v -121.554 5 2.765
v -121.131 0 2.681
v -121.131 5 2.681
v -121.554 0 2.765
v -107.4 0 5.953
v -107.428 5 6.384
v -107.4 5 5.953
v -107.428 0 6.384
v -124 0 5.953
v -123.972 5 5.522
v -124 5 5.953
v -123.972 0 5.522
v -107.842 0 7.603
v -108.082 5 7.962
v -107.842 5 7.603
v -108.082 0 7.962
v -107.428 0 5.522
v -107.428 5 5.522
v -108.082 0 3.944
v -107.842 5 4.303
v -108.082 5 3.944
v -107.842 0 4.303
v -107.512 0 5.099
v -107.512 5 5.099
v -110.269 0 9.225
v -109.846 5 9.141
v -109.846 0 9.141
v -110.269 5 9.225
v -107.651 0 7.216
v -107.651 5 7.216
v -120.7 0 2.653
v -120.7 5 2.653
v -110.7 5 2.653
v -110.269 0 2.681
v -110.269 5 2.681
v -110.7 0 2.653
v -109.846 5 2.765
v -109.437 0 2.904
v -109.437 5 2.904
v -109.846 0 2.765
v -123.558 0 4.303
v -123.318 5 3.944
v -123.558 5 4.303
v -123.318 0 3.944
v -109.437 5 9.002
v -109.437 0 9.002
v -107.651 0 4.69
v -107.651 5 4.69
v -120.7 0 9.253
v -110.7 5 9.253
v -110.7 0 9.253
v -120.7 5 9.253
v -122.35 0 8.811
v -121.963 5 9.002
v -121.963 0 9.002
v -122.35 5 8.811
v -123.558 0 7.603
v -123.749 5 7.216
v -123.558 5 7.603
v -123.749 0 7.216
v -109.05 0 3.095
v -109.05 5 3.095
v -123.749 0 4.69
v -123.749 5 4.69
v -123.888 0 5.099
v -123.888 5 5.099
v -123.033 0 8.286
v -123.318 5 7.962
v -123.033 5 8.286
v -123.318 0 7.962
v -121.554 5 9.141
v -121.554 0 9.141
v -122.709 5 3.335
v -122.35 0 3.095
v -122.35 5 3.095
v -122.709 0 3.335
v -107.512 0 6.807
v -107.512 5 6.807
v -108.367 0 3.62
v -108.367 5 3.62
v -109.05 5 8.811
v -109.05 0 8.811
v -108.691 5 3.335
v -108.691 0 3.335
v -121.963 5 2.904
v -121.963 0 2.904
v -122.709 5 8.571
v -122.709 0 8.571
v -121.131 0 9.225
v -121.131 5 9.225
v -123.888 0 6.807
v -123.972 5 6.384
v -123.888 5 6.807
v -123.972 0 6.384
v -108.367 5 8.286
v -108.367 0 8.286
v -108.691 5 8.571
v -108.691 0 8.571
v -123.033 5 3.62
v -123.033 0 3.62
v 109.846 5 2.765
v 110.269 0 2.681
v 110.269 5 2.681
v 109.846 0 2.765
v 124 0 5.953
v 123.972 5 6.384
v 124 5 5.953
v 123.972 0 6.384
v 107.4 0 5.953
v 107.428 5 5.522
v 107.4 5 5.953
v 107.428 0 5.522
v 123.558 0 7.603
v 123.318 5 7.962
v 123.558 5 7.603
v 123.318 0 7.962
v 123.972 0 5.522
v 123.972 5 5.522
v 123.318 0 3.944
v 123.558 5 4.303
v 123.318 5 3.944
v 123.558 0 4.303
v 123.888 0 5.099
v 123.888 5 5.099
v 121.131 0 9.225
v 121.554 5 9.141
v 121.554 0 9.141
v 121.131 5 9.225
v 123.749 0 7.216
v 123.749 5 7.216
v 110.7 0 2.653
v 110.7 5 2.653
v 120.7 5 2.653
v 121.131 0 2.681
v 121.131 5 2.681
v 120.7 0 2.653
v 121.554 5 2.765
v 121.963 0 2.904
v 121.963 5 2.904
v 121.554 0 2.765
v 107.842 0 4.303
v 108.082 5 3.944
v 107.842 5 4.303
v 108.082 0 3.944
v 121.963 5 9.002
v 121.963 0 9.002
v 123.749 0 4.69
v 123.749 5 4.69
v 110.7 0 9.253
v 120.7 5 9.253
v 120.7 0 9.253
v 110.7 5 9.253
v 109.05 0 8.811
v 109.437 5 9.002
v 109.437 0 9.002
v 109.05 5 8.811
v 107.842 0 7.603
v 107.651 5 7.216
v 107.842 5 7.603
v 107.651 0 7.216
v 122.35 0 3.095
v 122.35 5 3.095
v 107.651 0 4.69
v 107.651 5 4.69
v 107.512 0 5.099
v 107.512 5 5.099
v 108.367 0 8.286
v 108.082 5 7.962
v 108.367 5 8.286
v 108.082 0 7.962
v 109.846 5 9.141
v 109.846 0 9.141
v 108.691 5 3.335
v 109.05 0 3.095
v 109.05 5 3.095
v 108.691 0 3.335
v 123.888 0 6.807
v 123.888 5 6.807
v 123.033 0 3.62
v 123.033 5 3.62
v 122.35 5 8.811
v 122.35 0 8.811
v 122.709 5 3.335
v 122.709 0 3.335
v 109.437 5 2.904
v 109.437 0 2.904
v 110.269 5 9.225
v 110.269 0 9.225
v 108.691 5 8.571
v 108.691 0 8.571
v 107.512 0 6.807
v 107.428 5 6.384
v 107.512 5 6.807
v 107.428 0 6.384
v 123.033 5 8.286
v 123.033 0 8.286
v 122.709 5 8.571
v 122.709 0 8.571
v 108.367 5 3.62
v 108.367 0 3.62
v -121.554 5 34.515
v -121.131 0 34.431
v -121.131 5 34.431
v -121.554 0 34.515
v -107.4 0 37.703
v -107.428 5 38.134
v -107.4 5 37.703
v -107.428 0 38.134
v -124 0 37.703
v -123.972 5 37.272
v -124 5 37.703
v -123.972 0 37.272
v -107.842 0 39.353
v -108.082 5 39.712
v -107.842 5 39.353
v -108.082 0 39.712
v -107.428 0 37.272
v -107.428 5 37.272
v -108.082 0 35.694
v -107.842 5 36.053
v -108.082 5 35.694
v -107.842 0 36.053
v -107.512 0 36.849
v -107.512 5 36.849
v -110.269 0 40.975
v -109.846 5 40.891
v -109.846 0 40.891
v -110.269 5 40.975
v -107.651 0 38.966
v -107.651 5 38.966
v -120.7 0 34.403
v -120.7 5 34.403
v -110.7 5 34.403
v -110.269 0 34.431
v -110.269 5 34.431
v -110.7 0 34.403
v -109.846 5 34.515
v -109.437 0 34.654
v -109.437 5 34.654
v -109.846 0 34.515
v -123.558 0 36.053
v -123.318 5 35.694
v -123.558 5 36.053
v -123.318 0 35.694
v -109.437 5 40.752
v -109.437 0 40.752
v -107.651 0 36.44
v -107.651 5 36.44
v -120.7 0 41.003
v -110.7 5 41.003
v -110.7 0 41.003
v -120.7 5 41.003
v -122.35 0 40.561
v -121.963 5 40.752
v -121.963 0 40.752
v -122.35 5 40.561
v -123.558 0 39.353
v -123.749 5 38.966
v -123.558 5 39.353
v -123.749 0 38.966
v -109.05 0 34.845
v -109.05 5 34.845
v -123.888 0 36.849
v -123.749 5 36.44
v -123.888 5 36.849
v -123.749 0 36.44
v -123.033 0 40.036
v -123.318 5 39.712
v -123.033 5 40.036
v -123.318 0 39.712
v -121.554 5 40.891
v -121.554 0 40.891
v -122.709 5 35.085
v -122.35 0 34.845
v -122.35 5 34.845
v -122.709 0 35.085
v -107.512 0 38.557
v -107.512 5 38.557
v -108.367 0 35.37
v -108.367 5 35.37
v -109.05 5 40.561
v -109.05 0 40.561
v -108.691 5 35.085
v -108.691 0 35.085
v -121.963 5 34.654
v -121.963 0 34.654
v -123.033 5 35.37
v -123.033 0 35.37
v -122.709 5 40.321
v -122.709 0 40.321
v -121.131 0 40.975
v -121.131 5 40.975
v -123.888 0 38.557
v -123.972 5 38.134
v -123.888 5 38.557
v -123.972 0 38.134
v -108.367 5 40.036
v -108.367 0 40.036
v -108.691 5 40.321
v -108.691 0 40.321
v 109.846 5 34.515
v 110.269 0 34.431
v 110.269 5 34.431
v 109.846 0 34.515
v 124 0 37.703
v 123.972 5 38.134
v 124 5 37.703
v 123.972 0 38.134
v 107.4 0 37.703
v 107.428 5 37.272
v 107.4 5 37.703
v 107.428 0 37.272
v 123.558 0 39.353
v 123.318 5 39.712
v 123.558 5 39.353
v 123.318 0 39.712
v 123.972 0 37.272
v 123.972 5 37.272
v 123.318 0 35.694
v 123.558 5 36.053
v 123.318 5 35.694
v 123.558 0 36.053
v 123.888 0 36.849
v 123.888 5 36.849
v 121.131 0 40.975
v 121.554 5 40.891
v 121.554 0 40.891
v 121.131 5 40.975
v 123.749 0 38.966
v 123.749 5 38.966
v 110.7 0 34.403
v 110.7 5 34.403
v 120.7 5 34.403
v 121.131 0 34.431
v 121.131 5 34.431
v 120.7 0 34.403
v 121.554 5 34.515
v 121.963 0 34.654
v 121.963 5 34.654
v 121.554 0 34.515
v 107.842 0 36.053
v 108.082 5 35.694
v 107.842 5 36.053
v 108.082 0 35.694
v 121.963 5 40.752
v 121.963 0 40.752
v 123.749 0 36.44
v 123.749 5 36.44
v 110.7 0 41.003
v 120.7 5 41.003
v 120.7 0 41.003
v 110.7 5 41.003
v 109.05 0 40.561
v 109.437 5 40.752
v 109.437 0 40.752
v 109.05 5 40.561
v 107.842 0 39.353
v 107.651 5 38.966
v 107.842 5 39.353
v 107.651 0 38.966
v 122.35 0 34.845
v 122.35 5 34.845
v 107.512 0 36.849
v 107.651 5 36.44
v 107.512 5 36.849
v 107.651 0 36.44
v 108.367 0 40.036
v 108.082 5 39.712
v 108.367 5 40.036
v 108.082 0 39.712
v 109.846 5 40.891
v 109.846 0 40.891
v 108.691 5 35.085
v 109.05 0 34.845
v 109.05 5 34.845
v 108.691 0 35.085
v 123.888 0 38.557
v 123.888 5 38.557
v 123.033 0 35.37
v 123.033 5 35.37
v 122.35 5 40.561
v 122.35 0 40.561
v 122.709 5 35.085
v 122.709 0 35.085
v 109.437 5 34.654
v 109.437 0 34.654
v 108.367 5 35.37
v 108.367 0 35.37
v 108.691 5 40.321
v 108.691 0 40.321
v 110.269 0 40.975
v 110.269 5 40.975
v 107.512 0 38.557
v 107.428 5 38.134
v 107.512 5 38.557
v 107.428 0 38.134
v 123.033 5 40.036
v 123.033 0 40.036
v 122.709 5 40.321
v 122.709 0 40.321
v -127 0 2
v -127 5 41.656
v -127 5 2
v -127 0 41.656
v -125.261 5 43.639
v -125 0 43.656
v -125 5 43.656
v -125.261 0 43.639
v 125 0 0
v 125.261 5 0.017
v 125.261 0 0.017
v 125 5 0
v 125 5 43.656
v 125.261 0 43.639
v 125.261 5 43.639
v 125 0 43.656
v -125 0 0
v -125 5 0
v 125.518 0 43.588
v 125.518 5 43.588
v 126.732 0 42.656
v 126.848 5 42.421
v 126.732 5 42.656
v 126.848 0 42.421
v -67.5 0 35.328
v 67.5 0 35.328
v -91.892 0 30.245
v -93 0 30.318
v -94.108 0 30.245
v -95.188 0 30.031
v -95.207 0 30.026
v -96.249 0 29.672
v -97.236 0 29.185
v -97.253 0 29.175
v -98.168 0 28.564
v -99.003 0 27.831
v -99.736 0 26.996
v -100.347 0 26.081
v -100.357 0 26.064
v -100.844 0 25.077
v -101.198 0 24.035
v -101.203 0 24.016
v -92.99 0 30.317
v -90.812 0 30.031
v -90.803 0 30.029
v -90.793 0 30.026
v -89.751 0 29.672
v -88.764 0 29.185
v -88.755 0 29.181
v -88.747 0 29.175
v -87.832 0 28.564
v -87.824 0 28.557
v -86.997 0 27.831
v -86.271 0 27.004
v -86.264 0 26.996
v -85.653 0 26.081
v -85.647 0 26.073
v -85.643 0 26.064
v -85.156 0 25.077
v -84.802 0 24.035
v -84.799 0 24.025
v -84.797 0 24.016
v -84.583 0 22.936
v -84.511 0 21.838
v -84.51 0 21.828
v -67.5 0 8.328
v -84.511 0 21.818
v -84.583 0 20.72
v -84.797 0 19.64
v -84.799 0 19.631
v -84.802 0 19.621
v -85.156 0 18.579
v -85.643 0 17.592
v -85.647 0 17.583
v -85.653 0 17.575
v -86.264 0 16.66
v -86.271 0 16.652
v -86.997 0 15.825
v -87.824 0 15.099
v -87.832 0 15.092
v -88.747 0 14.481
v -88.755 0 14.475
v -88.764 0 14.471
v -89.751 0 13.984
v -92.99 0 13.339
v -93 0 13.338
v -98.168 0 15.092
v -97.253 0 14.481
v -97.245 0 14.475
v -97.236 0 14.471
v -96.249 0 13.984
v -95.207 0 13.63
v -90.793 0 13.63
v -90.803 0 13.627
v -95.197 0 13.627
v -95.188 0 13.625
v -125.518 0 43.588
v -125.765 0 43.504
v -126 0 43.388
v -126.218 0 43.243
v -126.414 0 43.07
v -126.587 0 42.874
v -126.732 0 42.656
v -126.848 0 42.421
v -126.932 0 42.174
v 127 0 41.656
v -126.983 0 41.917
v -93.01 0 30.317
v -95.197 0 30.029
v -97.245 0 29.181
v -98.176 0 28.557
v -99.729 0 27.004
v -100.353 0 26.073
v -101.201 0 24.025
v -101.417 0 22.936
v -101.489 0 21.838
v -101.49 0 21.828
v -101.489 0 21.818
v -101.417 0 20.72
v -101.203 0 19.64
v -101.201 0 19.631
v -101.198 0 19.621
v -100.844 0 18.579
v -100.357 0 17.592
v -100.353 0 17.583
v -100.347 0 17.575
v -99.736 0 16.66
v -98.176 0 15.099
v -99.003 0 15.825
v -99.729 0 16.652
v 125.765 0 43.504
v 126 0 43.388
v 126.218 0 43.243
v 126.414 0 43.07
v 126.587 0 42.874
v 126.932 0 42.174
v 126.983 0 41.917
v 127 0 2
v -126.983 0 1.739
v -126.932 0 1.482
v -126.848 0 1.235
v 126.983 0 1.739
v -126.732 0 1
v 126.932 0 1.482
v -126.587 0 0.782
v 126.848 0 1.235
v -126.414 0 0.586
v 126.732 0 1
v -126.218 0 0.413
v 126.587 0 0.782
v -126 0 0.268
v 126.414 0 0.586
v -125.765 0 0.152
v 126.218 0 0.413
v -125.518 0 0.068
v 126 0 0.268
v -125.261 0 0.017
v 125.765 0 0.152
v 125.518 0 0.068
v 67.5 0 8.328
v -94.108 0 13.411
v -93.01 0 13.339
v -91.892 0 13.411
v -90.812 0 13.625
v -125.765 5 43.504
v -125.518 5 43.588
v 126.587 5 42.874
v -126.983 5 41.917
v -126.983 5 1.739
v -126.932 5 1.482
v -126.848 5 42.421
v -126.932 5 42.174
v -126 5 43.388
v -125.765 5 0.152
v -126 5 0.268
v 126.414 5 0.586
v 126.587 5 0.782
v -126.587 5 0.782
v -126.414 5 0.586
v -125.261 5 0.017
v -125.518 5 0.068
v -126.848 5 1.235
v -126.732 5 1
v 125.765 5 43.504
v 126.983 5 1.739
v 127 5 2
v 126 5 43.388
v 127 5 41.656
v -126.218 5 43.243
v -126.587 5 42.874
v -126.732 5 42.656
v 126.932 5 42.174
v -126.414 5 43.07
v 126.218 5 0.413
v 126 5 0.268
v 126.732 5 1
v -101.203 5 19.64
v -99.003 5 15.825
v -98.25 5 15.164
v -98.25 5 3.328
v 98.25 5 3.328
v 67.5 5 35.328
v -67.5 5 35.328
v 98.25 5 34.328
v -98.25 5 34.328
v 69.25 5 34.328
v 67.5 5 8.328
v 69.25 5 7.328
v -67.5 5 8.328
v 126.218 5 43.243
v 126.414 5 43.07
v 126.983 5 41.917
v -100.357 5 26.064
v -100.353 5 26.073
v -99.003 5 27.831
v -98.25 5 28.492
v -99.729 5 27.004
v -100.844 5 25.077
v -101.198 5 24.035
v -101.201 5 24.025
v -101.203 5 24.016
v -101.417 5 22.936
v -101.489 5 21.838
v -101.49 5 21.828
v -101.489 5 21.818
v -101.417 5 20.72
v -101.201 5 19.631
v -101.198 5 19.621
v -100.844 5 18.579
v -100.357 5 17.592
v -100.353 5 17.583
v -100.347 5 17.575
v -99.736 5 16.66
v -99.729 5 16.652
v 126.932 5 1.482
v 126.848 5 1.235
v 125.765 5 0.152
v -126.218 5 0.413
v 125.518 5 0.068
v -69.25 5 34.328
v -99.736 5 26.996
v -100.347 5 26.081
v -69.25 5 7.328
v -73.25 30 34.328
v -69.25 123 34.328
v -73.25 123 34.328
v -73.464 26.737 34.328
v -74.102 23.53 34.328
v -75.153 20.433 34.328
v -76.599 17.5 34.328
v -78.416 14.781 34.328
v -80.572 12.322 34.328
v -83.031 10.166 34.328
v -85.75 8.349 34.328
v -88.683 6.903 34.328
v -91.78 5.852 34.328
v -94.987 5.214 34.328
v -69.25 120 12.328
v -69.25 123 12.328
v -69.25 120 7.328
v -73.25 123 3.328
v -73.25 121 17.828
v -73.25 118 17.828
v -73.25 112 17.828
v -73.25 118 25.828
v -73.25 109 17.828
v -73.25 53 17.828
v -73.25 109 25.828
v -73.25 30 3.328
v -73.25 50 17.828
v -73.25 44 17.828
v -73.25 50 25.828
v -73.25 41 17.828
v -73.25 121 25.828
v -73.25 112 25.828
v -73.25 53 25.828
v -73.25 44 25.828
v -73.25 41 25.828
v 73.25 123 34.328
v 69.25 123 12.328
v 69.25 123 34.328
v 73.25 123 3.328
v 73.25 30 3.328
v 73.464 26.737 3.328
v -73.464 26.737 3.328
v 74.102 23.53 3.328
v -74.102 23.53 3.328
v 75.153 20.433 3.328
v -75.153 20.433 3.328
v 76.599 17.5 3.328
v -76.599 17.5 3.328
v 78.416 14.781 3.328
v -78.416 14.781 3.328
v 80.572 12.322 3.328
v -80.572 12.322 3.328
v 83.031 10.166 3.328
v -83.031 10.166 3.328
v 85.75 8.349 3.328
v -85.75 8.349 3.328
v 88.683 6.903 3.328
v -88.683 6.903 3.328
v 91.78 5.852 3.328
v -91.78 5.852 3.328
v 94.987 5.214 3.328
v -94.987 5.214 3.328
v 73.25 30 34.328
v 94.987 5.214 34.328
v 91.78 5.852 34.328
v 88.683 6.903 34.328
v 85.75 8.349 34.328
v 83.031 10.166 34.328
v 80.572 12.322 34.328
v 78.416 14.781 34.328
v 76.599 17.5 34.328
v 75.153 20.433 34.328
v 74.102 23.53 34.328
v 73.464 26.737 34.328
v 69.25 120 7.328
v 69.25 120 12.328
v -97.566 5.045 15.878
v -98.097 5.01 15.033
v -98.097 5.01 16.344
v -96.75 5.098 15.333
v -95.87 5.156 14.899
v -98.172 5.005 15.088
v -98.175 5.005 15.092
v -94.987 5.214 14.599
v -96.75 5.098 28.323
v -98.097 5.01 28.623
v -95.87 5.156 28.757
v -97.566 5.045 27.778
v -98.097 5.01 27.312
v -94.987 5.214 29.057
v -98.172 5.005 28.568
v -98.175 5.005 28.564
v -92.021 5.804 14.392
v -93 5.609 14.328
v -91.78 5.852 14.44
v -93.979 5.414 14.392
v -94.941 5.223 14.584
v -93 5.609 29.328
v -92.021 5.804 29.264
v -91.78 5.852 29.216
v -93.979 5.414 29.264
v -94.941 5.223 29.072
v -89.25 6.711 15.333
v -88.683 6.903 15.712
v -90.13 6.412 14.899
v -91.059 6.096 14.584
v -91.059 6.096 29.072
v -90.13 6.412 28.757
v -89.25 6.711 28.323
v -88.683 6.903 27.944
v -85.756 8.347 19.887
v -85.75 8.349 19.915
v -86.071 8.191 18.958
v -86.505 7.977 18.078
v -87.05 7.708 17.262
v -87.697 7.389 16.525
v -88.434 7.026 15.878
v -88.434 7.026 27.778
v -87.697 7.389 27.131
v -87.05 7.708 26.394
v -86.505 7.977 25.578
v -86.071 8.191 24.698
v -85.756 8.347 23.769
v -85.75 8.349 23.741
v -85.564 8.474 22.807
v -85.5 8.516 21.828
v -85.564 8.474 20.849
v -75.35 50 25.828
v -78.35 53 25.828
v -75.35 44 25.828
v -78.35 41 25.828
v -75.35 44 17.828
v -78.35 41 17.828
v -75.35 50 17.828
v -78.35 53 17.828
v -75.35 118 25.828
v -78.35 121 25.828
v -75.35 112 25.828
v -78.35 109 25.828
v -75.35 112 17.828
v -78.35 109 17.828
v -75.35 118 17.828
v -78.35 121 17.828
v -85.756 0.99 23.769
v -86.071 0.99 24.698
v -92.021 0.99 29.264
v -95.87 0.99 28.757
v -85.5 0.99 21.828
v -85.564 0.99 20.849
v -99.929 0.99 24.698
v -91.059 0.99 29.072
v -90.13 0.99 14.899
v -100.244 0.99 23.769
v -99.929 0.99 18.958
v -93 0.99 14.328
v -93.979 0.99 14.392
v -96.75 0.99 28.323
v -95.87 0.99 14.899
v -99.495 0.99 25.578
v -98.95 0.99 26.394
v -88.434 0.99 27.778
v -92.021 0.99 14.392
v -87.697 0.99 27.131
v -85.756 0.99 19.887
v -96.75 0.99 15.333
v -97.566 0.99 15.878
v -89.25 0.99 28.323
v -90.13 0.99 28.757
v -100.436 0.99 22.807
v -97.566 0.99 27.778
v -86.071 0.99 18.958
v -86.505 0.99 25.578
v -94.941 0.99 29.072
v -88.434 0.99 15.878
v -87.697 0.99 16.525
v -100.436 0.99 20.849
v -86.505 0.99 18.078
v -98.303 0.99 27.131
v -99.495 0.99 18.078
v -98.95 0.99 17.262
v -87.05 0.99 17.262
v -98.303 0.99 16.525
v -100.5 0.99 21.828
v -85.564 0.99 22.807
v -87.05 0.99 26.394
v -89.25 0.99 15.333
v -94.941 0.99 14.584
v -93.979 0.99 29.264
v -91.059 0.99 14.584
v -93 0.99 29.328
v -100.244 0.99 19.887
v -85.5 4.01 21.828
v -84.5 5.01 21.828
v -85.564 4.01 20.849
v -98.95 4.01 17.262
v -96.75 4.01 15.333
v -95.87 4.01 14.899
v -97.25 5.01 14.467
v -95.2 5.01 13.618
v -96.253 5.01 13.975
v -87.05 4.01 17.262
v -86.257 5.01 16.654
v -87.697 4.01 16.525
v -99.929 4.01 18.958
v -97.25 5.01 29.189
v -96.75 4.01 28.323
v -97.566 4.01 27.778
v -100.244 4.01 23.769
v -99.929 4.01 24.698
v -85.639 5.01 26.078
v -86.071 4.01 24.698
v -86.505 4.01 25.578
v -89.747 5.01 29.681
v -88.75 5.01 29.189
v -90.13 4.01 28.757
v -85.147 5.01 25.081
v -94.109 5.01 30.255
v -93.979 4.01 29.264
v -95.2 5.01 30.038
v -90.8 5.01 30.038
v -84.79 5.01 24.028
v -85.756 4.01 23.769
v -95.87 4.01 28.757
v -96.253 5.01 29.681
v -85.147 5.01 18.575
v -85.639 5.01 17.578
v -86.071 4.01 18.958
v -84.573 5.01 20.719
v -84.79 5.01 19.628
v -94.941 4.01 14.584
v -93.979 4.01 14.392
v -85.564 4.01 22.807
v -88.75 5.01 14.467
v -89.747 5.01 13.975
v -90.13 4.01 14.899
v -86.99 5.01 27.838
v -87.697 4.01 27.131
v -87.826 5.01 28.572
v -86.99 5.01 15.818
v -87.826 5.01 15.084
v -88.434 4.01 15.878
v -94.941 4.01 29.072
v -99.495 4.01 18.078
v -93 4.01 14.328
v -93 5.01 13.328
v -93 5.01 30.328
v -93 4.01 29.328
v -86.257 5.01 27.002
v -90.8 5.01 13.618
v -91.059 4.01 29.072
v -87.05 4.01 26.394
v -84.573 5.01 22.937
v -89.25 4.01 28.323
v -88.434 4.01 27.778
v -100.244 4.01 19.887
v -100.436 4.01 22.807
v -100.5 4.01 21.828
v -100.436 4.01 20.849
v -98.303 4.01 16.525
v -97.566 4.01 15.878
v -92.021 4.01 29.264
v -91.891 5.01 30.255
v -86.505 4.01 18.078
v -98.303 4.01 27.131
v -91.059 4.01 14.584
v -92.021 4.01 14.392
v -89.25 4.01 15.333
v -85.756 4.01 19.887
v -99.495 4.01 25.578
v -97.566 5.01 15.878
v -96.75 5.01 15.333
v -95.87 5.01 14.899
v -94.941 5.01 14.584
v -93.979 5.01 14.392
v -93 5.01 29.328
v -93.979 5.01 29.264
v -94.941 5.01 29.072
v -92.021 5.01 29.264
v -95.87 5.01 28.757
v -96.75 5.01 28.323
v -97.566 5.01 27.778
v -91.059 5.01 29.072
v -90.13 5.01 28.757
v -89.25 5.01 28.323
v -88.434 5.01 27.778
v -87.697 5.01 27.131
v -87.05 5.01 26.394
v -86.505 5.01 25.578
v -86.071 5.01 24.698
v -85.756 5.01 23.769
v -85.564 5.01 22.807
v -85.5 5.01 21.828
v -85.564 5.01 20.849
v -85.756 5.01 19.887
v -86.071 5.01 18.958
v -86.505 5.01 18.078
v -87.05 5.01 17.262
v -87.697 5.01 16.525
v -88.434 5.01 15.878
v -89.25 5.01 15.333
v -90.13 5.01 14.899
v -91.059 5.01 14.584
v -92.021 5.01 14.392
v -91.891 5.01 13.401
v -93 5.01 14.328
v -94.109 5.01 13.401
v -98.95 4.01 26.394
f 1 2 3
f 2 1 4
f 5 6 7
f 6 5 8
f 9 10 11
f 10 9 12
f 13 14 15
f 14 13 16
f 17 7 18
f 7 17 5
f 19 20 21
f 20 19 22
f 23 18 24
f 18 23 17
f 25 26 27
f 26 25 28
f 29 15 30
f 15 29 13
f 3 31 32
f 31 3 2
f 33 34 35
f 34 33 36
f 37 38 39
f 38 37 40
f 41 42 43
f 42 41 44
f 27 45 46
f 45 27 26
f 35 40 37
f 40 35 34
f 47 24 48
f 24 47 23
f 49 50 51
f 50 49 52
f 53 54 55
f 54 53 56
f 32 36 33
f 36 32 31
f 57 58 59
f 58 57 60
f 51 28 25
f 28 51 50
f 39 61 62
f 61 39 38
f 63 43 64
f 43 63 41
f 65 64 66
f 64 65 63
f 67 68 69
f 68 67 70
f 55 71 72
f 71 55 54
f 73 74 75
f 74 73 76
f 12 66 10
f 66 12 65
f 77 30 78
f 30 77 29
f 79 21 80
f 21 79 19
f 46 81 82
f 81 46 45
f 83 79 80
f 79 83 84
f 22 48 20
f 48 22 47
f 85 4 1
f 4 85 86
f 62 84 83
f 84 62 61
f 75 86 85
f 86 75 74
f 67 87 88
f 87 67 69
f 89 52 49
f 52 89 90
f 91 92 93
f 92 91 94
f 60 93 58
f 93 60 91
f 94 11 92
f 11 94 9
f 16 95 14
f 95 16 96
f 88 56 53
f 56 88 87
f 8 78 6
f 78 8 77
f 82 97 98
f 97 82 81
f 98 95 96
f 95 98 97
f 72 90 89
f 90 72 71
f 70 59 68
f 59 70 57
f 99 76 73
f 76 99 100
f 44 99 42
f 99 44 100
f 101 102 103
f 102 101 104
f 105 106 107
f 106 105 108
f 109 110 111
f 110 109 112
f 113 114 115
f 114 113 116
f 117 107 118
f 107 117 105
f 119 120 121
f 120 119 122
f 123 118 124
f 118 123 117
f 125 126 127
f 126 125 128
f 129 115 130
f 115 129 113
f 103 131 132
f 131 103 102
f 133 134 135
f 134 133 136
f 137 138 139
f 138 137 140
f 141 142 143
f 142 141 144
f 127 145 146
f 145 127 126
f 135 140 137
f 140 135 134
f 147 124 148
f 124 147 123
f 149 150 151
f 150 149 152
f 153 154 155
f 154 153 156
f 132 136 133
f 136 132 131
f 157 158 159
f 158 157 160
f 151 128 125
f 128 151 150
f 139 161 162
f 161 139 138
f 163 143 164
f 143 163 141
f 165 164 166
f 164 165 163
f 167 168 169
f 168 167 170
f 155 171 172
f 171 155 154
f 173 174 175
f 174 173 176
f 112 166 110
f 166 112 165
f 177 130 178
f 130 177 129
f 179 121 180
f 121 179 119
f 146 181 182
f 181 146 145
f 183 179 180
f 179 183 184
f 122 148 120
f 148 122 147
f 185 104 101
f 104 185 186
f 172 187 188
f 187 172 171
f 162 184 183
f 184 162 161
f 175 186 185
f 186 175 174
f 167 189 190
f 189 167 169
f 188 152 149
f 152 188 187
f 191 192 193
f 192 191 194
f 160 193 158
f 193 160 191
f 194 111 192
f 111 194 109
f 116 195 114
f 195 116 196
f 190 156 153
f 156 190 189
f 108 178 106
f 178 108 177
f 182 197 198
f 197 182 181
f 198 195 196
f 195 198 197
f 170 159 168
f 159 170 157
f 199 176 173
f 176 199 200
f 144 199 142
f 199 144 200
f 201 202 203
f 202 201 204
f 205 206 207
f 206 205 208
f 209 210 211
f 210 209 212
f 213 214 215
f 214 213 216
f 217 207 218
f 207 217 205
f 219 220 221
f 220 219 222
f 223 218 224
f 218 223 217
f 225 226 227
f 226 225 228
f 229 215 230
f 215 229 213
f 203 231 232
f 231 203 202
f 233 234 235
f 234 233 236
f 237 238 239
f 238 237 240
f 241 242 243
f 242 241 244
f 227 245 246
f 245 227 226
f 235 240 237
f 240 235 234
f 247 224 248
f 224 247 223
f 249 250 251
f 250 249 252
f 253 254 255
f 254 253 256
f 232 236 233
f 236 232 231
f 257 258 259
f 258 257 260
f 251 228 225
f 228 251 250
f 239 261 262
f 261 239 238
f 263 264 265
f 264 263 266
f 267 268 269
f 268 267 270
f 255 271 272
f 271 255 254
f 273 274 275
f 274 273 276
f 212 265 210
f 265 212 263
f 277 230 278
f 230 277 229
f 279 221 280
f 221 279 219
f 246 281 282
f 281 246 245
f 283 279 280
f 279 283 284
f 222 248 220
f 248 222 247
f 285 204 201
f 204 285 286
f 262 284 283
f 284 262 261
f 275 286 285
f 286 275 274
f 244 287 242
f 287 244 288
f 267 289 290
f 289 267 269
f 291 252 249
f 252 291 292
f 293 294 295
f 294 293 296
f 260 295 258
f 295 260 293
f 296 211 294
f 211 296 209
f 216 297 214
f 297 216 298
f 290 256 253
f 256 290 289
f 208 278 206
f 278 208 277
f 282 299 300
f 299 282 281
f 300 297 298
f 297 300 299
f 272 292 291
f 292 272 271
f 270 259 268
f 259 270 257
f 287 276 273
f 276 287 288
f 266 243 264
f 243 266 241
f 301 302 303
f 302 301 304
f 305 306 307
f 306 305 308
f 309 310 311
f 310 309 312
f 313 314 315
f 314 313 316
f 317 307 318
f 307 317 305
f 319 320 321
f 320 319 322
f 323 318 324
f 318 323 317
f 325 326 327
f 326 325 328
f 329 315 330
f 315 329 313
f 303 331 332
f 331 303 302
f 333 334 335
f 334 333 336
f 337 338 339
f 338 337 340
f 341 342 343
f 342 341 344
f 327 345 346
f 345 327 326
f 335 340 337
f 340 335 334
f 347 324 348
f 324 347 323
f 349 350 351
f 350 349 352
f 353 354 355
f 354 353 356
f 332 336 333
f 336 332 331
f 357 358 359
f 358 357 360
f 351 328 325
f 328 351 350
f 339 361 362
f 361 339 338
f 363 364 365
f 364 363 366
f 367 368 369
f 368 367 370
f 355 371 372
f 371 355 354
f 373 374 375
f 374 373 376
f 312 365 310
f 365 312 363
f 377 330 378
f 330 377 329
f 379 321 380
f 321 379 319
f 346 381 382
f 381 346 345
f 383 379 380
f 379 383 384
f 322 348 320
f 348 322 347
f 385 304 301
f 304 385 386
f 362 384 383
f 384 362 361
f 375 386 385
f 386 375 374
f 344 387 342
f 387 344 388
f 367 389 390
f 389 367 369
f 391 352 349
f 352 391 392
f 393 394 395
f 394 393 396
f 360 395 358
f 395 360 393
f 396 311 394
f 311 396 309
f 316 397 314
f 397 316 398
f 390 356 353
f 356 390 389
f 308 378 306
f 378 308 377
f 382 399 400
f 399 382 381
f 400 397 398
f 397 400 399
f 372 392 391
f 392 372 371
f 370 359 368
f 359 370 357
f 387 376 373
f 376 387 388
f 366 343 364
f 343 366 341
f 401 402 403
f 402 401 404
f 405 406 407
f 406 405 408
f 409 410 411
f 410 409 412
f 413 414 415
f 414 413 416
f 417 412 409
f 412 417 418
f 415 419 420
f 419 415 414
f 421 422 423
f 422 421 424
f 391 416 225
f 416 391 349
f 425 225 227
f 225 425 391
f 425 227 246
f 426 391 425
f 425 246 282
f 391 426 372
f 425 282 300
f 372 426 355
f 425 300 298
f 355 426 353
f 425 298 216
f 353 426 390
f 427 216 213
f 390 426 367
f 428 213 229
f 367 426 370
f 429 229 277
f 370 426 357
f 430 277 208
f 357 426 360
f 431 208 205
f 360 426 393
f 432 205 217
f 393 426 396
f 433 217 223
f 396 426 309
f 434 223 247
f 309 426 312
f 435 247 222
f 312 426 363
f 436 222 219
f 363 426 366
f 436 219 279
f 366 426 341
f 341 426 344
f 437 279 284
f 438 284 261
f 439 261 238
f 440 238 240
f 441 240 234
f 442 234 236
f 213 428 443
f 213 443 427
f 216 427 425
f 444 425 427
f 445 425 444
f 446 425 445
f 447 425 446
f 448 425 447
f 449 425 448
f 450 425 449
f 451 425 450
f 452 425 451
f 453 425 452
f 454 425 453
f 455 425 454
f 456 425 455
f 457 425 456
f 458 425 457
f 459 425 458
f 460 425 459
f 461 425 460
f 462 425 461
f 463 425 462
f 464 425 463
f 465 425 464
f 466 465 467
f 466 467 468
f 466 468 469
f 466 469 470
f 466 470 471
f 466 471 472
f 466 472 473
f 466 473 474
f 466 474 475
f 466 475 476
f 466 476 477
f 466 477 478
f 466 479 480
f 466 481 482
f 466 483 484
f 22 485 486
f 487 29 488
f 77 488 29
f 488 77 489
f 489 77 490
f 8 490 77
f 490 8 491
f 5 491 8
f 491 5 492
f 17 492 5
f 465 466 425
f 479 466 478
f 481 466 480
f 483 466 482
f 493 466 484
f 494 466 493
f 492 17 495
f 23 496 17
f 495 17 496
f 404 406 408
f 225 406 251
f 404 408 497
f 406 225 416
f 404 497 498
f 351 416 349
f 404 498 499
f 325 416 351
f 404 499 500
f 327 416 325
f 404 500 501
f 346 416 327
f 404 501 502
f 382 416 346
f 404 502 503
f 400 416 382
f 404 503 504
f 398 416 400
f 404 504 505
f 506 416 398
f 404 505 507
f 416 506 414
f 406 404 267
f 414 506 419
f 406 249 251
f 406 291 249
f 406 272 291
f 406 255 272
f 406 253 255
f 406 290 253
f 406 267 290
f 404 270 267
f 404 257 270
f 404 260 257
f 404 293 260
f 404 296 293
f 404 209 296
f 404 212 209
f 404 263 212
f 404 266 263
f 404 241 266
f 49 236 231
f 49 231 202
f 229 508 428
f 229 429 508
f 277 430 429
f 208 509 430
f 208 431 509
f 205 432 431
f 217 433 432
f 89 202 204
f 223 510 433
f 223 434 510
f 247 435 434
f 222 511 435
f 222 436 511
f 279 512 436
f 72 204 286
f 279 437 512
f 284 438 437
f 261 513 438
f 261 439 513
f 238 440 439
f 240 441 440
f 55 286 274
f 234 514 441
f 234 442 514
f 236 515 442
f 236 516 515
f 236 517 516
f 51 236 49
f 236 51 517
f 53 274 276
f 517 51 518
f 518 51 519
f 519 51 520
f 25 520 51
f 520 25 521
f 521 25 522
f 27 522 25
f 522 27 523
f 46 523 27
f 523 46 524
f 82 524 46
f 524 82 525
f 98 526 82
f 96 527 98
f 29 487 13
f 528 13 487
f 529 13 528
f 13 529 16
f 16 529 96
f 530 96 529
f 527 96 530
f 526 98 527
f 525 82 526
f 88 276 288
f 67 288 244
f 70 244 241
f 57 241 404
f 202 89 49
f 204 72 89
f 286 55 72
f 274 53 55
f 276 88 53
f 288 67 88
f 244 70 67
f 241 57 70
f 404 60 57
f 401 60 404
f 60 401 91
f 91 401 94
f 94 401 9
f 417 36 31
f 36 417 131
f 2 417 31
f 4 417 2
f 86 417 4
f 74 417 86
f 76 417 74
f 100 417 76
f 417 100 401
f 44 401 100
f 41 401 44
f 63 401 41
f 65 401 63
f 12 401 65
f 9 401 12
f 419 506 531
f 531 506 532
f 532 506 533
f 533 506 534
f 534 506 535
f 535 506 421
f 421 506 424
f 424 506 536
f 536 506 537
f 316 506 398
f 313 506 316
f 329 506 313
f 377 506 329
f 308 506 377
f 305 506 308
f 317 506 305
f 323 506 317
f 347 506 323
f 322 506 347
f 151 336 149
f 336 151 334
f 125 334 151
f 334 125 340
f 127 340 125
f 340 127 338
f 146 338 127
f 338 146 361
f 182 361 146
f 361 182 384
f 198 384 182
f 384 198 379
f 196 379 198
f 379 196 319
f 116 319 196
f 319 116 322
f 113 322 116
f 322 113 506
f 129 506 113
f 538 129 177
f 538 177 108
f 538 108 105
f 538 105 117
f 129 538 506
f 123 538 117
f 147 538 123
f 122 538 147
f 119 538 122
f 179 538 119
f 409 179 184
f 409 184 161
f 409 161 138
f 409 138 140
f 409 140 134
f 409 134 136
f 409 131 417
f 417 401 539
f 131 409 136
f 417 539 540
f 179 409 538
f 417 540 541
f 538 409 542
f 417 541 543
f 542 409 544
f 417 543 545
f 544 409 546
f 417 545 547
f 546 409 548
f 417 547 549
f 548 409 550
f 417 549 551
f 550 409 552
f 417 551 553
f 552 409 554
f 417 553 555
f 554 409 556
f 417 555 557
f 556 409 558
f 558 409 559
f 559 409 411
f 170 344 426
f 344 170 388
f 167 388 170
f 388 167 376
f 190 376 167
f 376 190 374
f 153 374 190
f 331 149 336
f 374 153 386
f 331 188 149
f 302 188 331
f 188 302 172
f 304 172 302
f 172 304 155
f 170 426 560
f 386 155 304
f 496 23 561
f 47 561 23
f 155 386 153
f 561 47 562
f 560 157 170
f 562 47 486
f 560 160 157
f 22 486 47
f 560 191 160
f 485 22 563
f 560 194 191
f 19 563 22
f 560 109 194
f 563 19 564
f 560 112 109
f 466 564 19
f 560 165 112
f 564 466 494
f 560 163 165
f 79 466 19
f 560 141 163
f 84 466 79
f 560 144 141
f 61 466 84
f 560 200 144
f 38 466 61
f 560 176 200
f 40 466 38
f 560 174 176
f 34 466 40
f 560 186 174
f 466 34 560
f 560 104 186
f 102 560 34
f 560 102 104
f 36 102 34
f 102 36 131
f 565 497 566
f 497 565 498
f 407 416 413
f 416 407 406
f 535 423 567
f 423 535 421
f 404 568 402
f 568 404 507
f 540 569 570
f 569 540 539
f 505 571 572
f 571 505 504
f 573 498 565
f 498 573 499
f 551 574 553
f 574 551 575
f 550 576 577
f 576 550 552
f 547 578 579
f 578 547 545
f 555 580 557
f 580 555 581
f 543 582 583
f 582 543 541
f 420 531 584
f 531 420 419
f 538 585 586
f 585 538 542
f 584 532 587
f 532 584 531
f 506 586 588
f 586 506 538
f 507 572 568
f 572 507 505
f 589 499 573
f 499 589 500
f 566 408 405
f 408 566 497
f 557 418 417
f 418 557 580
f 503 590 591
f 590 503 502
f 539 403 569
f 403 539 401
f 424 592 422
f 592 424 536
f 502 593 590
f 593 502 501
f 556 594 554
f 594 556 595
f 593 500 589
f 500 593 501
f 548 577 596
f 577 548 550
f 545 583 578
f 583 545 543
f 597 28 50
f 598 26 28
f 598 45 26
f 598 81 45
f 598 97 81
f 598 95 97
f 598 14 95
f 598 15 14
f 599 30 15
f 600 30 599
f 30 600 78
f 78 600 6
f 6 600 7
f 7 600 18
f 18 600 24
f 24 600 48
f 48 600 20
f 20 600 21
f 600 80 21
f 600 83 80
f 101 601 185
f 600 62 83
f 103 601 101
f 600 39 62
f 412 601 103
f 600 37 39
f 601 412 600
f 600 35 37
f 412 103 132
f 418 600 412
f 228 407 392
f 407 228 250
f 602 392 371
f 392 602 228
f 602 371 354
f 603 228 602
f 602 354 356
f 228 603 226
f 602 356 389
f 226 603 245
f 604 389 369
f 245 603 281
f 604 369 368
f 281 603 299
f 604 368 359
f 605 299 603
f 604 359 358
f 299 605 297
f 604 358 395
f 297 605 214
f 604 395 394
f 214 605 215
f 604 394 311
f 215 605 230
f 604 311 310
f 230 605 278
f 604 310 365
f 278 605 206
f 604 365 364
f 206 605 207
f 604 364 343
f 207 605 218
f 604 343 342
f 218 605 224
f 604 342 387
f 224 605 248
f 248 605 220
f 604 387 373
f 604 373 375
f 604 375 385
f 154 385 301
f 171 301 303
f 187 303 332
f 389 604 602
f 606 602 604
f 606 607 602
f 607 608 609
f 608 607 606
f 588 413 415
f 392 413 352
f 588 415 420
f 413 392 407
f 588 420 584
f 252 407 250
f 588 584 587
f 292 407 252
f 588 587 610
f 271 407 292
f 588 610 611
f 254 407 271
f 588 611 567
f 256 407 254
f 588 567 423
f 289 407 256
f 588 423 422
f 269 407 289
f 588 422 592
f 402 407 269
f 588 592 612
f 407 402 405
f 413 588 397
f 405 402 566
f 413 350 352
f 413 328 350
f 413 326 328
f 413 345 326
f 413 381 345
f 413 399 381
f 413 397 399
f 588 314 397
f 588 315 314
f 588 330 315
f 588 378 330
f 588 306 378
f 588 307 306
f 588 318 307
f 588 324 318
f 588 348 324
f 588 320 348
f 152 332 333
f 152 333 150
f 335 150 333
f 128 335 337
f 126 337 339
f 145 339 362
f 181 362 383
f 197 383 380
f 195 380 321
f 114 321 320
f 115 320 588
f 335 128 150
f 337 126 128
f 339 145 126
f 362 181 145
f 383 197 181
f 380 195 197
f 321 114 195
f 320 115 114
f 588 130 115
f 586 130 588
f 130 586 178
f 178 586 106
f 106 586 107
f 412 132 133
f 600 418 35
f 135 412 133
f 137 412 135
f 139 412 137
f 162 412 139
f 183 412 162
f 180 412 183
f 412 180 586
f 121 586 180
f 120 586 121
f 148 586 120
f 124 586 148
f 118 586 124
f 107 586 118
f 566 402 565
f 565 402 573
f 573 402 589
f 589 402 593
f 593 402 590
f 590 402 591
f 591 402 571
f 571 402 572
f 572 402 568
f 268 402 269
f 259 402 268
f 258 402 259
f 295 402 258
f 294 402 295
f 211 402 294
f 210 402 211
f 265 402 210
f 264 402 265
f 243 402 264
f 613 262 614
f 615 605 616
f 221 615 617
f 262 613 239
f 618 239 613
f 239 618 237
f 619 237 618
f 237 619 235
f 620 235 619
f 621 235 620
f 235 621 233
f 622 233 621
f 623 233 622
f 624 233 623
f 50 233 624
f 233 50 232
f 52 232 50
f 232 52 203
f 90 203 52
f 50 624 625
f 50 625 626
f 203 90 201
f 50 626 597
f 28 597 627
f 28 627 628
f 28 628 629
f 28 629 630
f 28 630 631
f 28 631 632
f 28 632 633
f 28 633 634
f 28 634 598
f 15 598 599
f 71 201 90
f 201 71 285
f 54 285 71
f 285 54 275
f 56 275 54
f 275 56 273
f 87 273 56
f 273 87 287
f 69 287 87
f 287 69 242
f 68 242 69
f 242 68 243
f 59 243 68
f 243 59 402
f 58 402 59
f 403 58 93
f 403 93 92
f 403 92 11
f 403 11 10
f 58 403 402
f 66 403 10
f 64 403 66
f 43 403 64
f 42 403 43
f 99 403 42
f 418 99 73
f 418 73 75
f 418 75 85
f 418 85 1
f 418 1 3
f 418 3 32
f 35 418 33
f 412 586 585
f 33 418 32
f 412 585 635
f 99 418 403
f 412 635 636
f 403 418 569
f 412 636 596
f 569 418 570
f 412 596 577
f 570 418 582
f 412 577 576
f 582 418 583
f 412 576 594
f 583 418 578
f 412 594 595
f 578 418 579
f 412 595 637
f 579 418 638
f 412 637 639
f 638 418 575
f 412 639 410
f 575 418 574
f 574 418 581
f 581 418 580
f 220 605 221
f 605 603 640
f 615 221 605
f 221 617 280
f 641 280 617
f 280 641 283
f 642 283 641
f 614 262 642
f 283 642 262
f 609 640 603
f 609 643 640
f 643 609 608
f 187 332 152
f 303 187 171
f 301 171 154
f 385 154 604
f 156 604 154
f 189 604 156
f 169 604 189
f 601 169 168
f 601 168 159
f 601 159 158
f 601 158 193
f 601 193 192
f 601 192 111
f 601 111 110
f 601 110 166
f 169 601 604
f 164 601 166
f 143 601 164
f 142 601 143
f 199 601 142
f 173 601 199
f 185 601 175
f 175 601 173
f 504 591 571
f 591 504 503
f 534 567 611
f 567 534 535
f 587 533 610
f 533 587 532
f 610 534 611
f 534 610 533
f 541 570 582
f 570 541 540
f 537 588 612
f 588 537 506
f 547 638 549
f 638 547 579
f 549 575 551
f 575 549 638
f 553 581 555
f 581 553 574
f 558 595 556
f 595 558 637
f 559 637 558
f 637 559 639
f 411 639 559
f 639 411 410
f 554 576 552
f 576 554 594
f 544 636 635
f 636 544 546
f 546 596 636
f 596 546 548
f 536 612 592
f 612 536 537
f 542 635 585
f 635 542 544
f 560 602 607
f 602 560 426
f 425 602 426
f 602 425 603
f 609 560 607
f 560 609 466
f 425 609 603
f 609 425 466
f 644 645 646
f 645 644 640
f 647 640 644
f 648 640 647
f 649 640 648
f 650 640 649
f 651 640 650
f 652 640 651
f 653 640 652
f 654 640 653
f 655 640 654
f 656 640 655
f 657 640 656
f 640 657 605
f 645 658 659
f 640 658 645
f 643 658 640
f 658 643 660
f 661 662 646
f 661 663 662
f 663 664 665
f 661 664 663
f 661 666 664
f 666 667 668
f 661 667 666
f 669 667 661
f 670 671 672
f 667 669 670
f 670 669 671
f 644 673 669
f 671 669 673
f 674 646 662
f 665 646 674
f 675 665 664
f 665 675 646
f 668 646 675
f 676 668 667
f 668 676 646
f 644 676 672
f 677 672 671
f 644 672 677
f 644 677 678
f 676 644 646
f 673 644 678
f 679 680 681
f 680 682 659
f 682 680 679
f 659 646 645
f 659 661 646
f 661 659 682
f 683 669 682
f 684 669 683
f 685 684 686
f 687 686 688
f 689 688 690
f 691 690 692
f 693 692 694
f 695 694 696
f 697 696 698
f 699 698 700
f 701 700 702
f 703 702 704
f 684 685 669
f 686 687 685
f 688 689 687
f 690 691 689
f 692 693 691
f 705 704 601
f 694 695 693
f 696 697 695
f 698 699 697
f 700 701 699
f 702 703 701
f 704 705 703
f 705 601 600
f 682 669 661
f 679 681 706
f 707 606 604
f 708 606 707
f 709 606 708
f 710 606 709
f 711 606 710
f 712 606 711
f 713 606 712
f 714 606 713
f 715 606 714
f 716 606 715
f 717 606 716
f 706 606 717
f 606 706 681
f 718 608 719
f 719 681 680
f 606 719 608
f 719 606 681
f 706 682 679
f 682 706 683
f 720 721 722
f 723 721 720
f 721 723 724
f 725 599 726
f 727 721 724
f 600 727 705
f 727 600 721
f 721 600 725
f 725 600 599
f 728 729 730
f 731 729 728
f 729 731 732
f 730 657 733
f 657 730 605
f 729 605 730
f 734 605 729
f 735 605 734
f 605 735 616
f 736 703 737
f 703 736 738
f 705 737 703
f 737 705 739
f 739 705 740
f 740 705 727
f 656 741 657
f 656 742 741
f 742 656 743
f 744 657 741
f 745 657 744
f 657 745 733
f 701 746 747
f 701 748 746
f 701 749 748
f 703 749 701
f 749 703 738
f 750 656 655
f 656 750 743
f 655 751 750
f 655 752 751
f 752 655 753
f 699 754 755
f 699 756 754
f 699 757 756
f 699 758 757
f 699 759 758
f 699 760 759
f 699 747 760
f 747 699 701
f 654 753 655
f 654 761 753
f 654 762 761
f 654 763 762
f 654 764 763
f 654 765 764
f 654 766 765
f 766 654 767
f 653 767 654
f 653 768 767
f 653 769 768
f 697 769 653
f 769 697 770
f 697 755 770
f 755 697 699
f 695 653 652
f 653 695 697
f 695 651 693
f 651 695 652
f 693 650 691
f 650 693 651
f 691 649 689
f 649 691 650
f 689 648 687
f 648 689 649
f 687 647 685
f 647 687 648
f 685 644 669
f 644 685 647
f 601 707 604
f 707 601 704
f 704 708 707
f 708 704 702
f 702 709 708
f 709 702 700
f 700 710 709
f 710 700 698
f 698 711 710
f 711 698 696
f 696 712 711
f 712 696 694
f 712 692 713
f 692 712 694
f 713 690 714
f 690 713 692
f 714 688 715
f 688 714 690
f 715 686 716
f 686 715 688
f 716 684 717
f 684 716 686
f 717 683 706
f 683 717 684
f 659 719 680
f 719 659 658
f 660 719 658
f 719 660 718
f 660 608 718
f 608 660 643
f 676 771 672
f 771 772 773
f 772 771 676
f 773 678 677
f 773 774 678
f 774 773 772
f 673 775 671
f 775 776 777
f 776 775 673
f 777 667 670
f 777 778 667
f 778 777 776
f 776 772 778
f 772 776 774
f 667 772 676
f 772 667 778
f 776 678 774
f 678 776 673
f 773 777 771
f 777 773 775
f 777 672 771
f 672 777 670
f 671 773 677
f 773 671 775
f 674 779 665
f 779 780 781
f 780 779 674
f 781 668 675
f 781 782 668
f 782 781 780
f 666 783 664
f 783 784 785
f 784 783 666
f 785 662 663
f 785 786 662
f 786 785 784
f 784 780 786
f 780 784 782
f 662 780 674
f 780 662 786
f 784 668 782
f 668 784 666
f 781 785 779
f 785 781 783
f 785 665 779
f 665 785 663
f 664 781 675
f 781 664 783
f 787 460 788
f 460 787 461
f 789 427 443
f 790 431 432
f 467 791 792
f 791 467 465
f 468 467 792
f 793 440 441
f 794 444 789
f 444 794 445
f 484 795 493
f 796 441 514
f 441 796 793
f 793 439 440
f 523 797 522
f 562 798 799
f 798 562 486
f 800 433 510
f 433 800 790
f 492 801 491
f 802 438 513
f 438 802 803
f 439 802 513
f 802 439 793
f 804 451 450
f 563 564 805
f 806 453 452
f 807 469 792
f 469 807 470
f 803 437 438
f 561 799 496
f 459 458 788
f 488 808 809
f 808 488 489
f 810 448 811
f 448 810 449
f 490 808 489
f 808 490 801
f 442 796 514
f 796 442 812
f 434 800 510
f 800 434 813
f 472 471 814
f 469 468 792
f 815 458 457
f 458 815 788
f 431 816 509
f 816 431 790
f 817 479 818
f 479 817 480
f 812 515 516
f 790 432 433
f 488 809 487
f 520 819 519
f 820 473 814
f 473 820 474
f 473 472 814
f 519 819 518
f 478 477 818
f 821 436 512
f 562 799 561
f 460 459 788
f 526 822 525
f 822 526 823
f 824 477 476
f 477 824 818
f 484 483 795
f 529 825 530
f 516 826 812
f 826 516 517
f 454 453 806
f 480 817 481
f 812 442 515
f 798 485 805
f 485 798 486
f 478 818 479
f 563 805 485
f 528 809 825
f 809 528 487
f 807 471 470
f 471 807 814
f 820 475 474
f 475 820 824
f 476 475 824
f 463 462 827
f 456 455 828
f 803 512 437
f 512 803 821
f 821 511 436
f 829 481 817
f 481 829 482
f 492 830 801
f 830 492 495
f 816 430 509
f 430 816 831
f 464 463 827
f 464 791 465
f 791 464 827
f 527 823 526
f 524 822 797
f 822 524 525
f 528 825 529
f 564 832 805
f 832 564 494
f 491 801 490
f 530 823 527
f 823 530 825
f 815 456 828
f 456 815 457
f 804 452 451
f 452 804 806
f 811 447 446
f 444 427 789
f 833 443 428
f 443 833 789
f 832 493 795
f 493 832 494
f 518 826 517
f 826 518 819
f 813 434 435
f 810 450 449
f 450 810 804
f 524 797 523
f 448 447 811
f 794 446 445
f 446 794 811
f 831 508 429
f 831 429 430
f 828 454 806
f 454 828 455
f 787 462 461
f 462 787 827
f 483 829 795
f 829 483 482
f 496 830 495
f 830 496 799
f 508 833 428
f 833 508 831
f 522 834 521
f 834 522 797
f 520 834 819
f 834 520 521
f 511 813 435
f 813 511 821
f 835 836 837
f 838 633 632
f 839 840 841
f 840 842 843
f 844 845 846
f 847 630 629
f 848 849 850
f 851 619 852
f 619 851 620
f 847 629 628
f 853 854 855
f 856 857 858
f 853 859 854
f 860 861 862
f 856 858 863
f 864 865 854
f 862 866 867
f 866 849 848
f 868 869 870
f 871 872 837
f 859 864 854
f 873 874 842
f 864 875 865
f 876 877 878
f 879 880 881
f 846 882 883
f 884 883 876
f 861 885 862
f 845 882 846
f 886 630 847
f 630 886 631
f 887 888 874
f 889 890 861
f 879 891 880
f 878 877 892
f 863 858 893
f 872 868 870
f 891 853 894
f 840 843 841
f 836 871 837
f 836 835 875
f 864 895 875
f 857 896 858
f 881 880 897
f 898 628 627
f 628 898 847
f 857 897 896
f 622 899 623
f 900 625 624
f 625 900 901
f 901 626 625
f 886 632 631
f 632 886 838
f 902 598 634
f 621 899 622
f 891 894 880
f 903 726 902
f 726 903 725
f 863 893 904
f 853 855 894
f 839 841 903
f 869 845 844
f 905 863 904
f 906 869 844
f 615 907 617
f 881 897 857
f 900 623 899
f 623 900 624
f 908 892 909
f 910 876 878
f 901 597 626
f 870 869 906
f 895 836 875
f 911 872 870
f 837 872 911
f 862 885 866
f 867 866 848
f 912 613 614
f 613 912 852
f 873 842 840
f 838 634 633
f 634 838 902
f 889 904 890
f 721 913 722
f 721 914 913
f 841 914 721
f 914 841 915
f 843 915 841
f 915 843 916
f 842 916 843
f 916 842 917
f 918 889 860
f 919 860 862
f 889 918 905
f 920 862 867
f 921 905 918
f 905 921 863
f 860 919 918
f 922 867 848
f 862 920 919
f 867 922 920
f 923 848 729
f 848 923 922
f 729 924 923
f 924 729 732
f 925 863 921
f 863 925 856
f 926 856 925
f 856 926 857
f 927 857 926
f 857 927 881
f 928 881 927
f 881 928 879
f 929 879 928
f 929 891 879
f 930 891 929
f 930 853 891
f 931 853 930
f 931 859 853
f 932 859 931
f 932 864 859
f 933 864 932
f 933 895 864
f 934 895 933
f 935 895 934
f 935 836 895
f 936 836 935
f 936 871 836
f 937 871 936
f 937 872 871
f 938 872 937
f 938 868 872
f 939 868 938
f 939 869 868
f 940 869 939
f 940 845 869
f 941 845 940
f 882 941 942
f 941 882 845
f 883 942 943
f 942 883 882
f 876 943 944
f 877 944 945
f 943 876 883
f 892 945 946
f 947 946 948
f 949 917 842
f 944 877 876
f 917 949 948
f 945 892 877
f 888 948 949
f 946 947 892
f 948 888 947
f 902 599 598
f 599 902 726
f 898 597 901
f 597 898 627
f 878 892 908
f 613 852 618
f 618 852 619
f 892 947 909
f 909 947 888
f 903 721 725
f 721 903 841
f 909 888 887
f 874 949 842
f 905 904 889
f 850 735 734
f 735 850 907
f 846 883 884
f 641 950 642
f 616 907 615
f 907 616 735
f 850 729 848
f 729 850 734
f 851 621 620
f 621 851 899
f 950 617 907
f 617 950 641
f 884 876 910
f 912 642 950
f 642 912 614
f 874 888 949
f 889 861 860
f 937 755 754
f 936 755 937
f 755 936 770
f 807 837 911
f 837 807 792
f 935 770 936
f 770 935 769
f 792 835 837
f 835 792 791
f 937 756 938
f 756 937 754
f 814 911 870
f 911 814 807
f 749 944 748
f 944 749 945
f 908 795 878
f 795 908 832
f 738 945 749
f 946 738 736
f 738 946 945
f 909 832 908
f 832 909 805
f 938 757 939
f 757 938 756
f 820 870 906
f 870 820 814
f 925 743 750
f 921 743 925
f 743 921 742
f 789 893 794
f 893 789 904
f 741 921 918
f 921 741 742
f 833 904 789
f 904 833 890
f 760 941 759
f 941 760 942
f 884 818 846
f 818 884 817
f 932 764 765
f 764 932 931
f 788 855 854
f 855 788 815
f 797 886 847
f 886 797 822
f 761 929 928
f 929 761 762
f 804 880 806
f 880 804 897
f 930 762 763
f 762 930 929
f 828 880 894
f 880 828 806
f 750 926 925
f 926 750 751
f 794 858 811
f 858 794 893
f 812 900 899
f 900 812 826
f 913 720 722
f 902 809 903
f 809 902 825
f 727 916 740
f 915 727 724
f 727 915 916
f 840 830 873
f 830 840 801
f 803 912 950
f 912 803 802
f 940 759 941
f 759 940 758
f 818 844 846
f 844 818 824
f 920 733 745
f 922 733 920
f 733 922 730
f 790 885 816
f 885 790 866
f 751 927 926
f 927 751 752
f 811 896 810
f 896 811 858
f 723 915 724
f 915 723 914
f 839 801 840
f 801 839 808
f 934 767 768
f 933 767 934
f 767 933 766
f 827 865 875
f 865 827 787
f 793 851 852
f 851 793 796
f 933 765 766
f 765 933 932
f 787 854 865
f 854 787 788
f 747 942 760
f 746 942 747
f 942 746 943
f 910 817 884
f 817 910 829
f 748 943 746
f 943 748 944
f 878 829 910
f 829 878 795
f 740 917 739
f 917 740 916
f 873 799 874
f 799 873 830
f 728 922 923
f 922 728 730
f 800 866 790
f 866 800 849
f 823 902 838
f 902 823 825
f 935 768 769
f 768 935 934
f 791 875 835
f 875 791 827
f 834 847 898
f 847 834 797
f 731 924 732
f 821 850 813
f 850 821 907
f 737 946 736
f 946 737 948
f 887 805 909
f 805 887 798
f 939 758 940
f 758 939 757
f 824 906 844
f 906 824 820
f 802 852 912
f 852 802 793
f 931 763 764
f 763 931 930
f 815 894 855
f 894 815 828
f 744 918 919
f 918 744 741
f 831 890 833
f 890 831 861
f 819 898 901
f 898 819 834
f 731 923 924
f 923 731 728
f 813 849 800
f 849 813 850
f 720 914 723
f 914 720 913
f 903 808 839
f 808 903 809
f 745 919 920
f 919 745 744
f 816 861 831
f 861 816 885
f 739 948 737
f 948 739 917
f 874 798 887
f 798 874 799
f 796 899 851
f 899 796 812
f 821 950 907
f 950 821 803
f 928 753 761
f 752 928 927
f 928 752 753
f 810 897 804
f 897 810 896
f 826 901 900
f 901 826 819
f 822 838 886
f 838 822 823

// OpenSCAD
// Mounting bracket for a MikroTik hEX PoE (RB960PGS) router in a 10" benchtop rack, 1U.
// Geometry comes from ../lib/rack10.scad; this file only holds the hEX PoE numbers.
//
//   * All connectors (DC jack, SFP, Ether1-5, USB) are on one face of the
//     router, so that face goes to the front, through an aperture 1 mm smaller
//     than the case on every side. The LEDs are on the same face.
//   * Shelf with side fins and a low fixed lip across the rear of the shelf that
//     stops the router sliding back when cables are pushed into the ports. The
//     router is dropped in from above and lifted straight out.
//   * The DC jack is at the left end of the connector face (seen from the
//     front). A round hole in the panel to the left of the aperture lets the
//     power plug be threaded through from the back, so the power cable can run
//     along the outside of the left fin to a supply at the back of the rack.
//     Two cable-tie bridges on the outside of the left fin hold the cable.
//   * The side fins are solid. If the case turns out to have vents in its sides,
//     list them in `vents` (from the front face / bottom of the case) and the
//     fins get matching windows.
//
// Dimensions from the MikroTik brochure: 114 x 137 x 29 mm; the connector face
// is the 137 mm side. Measure the unit to confirm (and remove the rubber feet,
// or add their height to unit_h).
//
// Print with the front panel face down on the bed (print_orientation = true).

include <../lib/rack10.scad>

/* [hEX PoE] */
unit_w = 137;               // connector face
unit_h = 29;
unit_d = 114;
vents = [];                 // [[y_from, y_to, z_centre, height], ...] side vents, if any

/* [Bracket] */
rack_u = 1;
lip = 1;                    // panel overlaps the router by this much on each side
side_clear = 0.75;          // clearance between router and each side wall
rear_clear = 1.0;           // clearance between router and the rear stop
shelf_t = 4;                // shelf thickness
wall_t = 4;                 // side wall thickness
wall_above_shelf = 27;      // side wall height above the shelf top
wall_bottom = 0.5;          // side walls extend down to this z (stiffens the shelf)
vent_margin = 1.5;          // vent window is this much bigger than the vent, all round
fillet_r = 25;              // fillet between the outside of each side wall and the panel
                            // (0: none); max ~33 before it reaches the mounting slots
rear_stop_t = 3;            // rear lip thickness
rear_stop_h = 5;            // rear lip height above the shelf (0 for none)

/* [Power cable] */
power_hole_d = 15;          // hole for threading the power plug through the panel (0: none)
power_hole_x = -93;         // hole centre, left of the aperture (between fin and mounting slot)
power_hole_chamfer = 1;     // edge chamfer on both faces of the hole, for the cable
tie_bridges_y = [42, 110];  // cable-tie bridges on the outside of the left fin,
                            // measured from the back of the panel ([] for none)
tie_w = 4.8;                // cable tie width
tie_t = 1.5;                // cable tie thickness
tie_bridge_h = 8;           // bridge height, centred on the hole

/* [Rendering] */
print_orientation = false;  // true: lay the bracket with the front panel on the bed
show_unit = false;          // ghost of the hEX PoE for checking fit
$fn = 48;

unit     = [unit_w, unit_d, unit_h];
panel_t  = 5;
panel_h  = panel_height(rack_u);
shelf_w  = unit_w + 2 * side_clear + 2 * wall_t;
shelf_d  = rear_clear + unit_d + 3;                  // rear_stop_t = 3
z0       = unit_z0(unit_h, rack_u);
hole_z   = panel_h / 2;
slot_in  = slot_inner_x();                           // inner edge of the mounting slots
bridge   = tie_bridge_size([tie_w, tie_t], h = tie_bridge_h);

assert(power_hole_d == 0 || abs(power_hole_x) + power_hole_d / 2 + 6 <= slot_in,
       "power hole too close to the mounting slot (leave room for a washer)");
assert(power_hole_d == 0 || abs(power_hole_x) - power_hole_d / 2 >= unit_w / 2 - lip + 3,
       "power hole breaks into the aperture");
assert(power_hole_d == 0 || power_hole_d / 2 <= panel_h / 2 - 3, "power hole too tall for the panel");
for (y = tie_bridges_y) {
    assert(y - bridge[1] / 2 >= fillet_r, str("tie bridge at y=", y, " overlaps the fillet: move it back"));
    assert(y + bridge[1] / 2 <= shelf_d, str("tie bridge at y=", y, " overhangs the back of the shelf"));
    assert(hole_z - tie_bridge_h / 2 >= max(wall_bottom, z0 - shelf_t) &&
           hole_z + tie_bridge_h / 2 <= z0 + wall_above_shelf, "tie bridge taller than the fin");
}

module power_hole() {
    translate([power_hole_x, 0, hole_z]) rotate([-90, 0, 0]) {
        translate([0, 0, -1]) cylinder(d = power_hole_d, h = panel_t + fillet_r + 2);
        c = power_hole_chamfer;
        if (c > 0) {
            translate([0, 0, -0.01]) cylinder(d1 = power_hole_d + 2 * c, d2 = power_hole_d, h = c);
            translate([0, 0, panel_t - c + 0.01]) cylinder(d1 = power_hole_d, d2 = power_hole_d + 2 * c, h = c);
        }
    }
}

print_oriented(print_orientation) {
    difference() {
        union() {
            shelf_bracket(unit, rack_u = rack_u, lip = lip,
                          side_clear = side_clear, rear_clear = rear_clear,
                          shelf_t = shelf_t, wall_t = wall_t,
                          wall_above_shelf = wall_above_shelf, wall_bottom = wall_bottom,
                          rear_stop_t = rear_stop_t, rear_stop_h = rear_stop_h,
                          fillet_r = fillet_r,
                          vents = vents, vent_margin = vent_margin);
            for (y = tie_bridges_y)
                translate([-shelf_w / 2, panel_t + y, hole_z])
                    tie_bridge([tie_w, tie_t], h = tie_bridge_h);
        }
        if (power_hole_d > 0) power_hole();
    }
    if (show_unit) unit_ghost(unit, rack_u);
}
